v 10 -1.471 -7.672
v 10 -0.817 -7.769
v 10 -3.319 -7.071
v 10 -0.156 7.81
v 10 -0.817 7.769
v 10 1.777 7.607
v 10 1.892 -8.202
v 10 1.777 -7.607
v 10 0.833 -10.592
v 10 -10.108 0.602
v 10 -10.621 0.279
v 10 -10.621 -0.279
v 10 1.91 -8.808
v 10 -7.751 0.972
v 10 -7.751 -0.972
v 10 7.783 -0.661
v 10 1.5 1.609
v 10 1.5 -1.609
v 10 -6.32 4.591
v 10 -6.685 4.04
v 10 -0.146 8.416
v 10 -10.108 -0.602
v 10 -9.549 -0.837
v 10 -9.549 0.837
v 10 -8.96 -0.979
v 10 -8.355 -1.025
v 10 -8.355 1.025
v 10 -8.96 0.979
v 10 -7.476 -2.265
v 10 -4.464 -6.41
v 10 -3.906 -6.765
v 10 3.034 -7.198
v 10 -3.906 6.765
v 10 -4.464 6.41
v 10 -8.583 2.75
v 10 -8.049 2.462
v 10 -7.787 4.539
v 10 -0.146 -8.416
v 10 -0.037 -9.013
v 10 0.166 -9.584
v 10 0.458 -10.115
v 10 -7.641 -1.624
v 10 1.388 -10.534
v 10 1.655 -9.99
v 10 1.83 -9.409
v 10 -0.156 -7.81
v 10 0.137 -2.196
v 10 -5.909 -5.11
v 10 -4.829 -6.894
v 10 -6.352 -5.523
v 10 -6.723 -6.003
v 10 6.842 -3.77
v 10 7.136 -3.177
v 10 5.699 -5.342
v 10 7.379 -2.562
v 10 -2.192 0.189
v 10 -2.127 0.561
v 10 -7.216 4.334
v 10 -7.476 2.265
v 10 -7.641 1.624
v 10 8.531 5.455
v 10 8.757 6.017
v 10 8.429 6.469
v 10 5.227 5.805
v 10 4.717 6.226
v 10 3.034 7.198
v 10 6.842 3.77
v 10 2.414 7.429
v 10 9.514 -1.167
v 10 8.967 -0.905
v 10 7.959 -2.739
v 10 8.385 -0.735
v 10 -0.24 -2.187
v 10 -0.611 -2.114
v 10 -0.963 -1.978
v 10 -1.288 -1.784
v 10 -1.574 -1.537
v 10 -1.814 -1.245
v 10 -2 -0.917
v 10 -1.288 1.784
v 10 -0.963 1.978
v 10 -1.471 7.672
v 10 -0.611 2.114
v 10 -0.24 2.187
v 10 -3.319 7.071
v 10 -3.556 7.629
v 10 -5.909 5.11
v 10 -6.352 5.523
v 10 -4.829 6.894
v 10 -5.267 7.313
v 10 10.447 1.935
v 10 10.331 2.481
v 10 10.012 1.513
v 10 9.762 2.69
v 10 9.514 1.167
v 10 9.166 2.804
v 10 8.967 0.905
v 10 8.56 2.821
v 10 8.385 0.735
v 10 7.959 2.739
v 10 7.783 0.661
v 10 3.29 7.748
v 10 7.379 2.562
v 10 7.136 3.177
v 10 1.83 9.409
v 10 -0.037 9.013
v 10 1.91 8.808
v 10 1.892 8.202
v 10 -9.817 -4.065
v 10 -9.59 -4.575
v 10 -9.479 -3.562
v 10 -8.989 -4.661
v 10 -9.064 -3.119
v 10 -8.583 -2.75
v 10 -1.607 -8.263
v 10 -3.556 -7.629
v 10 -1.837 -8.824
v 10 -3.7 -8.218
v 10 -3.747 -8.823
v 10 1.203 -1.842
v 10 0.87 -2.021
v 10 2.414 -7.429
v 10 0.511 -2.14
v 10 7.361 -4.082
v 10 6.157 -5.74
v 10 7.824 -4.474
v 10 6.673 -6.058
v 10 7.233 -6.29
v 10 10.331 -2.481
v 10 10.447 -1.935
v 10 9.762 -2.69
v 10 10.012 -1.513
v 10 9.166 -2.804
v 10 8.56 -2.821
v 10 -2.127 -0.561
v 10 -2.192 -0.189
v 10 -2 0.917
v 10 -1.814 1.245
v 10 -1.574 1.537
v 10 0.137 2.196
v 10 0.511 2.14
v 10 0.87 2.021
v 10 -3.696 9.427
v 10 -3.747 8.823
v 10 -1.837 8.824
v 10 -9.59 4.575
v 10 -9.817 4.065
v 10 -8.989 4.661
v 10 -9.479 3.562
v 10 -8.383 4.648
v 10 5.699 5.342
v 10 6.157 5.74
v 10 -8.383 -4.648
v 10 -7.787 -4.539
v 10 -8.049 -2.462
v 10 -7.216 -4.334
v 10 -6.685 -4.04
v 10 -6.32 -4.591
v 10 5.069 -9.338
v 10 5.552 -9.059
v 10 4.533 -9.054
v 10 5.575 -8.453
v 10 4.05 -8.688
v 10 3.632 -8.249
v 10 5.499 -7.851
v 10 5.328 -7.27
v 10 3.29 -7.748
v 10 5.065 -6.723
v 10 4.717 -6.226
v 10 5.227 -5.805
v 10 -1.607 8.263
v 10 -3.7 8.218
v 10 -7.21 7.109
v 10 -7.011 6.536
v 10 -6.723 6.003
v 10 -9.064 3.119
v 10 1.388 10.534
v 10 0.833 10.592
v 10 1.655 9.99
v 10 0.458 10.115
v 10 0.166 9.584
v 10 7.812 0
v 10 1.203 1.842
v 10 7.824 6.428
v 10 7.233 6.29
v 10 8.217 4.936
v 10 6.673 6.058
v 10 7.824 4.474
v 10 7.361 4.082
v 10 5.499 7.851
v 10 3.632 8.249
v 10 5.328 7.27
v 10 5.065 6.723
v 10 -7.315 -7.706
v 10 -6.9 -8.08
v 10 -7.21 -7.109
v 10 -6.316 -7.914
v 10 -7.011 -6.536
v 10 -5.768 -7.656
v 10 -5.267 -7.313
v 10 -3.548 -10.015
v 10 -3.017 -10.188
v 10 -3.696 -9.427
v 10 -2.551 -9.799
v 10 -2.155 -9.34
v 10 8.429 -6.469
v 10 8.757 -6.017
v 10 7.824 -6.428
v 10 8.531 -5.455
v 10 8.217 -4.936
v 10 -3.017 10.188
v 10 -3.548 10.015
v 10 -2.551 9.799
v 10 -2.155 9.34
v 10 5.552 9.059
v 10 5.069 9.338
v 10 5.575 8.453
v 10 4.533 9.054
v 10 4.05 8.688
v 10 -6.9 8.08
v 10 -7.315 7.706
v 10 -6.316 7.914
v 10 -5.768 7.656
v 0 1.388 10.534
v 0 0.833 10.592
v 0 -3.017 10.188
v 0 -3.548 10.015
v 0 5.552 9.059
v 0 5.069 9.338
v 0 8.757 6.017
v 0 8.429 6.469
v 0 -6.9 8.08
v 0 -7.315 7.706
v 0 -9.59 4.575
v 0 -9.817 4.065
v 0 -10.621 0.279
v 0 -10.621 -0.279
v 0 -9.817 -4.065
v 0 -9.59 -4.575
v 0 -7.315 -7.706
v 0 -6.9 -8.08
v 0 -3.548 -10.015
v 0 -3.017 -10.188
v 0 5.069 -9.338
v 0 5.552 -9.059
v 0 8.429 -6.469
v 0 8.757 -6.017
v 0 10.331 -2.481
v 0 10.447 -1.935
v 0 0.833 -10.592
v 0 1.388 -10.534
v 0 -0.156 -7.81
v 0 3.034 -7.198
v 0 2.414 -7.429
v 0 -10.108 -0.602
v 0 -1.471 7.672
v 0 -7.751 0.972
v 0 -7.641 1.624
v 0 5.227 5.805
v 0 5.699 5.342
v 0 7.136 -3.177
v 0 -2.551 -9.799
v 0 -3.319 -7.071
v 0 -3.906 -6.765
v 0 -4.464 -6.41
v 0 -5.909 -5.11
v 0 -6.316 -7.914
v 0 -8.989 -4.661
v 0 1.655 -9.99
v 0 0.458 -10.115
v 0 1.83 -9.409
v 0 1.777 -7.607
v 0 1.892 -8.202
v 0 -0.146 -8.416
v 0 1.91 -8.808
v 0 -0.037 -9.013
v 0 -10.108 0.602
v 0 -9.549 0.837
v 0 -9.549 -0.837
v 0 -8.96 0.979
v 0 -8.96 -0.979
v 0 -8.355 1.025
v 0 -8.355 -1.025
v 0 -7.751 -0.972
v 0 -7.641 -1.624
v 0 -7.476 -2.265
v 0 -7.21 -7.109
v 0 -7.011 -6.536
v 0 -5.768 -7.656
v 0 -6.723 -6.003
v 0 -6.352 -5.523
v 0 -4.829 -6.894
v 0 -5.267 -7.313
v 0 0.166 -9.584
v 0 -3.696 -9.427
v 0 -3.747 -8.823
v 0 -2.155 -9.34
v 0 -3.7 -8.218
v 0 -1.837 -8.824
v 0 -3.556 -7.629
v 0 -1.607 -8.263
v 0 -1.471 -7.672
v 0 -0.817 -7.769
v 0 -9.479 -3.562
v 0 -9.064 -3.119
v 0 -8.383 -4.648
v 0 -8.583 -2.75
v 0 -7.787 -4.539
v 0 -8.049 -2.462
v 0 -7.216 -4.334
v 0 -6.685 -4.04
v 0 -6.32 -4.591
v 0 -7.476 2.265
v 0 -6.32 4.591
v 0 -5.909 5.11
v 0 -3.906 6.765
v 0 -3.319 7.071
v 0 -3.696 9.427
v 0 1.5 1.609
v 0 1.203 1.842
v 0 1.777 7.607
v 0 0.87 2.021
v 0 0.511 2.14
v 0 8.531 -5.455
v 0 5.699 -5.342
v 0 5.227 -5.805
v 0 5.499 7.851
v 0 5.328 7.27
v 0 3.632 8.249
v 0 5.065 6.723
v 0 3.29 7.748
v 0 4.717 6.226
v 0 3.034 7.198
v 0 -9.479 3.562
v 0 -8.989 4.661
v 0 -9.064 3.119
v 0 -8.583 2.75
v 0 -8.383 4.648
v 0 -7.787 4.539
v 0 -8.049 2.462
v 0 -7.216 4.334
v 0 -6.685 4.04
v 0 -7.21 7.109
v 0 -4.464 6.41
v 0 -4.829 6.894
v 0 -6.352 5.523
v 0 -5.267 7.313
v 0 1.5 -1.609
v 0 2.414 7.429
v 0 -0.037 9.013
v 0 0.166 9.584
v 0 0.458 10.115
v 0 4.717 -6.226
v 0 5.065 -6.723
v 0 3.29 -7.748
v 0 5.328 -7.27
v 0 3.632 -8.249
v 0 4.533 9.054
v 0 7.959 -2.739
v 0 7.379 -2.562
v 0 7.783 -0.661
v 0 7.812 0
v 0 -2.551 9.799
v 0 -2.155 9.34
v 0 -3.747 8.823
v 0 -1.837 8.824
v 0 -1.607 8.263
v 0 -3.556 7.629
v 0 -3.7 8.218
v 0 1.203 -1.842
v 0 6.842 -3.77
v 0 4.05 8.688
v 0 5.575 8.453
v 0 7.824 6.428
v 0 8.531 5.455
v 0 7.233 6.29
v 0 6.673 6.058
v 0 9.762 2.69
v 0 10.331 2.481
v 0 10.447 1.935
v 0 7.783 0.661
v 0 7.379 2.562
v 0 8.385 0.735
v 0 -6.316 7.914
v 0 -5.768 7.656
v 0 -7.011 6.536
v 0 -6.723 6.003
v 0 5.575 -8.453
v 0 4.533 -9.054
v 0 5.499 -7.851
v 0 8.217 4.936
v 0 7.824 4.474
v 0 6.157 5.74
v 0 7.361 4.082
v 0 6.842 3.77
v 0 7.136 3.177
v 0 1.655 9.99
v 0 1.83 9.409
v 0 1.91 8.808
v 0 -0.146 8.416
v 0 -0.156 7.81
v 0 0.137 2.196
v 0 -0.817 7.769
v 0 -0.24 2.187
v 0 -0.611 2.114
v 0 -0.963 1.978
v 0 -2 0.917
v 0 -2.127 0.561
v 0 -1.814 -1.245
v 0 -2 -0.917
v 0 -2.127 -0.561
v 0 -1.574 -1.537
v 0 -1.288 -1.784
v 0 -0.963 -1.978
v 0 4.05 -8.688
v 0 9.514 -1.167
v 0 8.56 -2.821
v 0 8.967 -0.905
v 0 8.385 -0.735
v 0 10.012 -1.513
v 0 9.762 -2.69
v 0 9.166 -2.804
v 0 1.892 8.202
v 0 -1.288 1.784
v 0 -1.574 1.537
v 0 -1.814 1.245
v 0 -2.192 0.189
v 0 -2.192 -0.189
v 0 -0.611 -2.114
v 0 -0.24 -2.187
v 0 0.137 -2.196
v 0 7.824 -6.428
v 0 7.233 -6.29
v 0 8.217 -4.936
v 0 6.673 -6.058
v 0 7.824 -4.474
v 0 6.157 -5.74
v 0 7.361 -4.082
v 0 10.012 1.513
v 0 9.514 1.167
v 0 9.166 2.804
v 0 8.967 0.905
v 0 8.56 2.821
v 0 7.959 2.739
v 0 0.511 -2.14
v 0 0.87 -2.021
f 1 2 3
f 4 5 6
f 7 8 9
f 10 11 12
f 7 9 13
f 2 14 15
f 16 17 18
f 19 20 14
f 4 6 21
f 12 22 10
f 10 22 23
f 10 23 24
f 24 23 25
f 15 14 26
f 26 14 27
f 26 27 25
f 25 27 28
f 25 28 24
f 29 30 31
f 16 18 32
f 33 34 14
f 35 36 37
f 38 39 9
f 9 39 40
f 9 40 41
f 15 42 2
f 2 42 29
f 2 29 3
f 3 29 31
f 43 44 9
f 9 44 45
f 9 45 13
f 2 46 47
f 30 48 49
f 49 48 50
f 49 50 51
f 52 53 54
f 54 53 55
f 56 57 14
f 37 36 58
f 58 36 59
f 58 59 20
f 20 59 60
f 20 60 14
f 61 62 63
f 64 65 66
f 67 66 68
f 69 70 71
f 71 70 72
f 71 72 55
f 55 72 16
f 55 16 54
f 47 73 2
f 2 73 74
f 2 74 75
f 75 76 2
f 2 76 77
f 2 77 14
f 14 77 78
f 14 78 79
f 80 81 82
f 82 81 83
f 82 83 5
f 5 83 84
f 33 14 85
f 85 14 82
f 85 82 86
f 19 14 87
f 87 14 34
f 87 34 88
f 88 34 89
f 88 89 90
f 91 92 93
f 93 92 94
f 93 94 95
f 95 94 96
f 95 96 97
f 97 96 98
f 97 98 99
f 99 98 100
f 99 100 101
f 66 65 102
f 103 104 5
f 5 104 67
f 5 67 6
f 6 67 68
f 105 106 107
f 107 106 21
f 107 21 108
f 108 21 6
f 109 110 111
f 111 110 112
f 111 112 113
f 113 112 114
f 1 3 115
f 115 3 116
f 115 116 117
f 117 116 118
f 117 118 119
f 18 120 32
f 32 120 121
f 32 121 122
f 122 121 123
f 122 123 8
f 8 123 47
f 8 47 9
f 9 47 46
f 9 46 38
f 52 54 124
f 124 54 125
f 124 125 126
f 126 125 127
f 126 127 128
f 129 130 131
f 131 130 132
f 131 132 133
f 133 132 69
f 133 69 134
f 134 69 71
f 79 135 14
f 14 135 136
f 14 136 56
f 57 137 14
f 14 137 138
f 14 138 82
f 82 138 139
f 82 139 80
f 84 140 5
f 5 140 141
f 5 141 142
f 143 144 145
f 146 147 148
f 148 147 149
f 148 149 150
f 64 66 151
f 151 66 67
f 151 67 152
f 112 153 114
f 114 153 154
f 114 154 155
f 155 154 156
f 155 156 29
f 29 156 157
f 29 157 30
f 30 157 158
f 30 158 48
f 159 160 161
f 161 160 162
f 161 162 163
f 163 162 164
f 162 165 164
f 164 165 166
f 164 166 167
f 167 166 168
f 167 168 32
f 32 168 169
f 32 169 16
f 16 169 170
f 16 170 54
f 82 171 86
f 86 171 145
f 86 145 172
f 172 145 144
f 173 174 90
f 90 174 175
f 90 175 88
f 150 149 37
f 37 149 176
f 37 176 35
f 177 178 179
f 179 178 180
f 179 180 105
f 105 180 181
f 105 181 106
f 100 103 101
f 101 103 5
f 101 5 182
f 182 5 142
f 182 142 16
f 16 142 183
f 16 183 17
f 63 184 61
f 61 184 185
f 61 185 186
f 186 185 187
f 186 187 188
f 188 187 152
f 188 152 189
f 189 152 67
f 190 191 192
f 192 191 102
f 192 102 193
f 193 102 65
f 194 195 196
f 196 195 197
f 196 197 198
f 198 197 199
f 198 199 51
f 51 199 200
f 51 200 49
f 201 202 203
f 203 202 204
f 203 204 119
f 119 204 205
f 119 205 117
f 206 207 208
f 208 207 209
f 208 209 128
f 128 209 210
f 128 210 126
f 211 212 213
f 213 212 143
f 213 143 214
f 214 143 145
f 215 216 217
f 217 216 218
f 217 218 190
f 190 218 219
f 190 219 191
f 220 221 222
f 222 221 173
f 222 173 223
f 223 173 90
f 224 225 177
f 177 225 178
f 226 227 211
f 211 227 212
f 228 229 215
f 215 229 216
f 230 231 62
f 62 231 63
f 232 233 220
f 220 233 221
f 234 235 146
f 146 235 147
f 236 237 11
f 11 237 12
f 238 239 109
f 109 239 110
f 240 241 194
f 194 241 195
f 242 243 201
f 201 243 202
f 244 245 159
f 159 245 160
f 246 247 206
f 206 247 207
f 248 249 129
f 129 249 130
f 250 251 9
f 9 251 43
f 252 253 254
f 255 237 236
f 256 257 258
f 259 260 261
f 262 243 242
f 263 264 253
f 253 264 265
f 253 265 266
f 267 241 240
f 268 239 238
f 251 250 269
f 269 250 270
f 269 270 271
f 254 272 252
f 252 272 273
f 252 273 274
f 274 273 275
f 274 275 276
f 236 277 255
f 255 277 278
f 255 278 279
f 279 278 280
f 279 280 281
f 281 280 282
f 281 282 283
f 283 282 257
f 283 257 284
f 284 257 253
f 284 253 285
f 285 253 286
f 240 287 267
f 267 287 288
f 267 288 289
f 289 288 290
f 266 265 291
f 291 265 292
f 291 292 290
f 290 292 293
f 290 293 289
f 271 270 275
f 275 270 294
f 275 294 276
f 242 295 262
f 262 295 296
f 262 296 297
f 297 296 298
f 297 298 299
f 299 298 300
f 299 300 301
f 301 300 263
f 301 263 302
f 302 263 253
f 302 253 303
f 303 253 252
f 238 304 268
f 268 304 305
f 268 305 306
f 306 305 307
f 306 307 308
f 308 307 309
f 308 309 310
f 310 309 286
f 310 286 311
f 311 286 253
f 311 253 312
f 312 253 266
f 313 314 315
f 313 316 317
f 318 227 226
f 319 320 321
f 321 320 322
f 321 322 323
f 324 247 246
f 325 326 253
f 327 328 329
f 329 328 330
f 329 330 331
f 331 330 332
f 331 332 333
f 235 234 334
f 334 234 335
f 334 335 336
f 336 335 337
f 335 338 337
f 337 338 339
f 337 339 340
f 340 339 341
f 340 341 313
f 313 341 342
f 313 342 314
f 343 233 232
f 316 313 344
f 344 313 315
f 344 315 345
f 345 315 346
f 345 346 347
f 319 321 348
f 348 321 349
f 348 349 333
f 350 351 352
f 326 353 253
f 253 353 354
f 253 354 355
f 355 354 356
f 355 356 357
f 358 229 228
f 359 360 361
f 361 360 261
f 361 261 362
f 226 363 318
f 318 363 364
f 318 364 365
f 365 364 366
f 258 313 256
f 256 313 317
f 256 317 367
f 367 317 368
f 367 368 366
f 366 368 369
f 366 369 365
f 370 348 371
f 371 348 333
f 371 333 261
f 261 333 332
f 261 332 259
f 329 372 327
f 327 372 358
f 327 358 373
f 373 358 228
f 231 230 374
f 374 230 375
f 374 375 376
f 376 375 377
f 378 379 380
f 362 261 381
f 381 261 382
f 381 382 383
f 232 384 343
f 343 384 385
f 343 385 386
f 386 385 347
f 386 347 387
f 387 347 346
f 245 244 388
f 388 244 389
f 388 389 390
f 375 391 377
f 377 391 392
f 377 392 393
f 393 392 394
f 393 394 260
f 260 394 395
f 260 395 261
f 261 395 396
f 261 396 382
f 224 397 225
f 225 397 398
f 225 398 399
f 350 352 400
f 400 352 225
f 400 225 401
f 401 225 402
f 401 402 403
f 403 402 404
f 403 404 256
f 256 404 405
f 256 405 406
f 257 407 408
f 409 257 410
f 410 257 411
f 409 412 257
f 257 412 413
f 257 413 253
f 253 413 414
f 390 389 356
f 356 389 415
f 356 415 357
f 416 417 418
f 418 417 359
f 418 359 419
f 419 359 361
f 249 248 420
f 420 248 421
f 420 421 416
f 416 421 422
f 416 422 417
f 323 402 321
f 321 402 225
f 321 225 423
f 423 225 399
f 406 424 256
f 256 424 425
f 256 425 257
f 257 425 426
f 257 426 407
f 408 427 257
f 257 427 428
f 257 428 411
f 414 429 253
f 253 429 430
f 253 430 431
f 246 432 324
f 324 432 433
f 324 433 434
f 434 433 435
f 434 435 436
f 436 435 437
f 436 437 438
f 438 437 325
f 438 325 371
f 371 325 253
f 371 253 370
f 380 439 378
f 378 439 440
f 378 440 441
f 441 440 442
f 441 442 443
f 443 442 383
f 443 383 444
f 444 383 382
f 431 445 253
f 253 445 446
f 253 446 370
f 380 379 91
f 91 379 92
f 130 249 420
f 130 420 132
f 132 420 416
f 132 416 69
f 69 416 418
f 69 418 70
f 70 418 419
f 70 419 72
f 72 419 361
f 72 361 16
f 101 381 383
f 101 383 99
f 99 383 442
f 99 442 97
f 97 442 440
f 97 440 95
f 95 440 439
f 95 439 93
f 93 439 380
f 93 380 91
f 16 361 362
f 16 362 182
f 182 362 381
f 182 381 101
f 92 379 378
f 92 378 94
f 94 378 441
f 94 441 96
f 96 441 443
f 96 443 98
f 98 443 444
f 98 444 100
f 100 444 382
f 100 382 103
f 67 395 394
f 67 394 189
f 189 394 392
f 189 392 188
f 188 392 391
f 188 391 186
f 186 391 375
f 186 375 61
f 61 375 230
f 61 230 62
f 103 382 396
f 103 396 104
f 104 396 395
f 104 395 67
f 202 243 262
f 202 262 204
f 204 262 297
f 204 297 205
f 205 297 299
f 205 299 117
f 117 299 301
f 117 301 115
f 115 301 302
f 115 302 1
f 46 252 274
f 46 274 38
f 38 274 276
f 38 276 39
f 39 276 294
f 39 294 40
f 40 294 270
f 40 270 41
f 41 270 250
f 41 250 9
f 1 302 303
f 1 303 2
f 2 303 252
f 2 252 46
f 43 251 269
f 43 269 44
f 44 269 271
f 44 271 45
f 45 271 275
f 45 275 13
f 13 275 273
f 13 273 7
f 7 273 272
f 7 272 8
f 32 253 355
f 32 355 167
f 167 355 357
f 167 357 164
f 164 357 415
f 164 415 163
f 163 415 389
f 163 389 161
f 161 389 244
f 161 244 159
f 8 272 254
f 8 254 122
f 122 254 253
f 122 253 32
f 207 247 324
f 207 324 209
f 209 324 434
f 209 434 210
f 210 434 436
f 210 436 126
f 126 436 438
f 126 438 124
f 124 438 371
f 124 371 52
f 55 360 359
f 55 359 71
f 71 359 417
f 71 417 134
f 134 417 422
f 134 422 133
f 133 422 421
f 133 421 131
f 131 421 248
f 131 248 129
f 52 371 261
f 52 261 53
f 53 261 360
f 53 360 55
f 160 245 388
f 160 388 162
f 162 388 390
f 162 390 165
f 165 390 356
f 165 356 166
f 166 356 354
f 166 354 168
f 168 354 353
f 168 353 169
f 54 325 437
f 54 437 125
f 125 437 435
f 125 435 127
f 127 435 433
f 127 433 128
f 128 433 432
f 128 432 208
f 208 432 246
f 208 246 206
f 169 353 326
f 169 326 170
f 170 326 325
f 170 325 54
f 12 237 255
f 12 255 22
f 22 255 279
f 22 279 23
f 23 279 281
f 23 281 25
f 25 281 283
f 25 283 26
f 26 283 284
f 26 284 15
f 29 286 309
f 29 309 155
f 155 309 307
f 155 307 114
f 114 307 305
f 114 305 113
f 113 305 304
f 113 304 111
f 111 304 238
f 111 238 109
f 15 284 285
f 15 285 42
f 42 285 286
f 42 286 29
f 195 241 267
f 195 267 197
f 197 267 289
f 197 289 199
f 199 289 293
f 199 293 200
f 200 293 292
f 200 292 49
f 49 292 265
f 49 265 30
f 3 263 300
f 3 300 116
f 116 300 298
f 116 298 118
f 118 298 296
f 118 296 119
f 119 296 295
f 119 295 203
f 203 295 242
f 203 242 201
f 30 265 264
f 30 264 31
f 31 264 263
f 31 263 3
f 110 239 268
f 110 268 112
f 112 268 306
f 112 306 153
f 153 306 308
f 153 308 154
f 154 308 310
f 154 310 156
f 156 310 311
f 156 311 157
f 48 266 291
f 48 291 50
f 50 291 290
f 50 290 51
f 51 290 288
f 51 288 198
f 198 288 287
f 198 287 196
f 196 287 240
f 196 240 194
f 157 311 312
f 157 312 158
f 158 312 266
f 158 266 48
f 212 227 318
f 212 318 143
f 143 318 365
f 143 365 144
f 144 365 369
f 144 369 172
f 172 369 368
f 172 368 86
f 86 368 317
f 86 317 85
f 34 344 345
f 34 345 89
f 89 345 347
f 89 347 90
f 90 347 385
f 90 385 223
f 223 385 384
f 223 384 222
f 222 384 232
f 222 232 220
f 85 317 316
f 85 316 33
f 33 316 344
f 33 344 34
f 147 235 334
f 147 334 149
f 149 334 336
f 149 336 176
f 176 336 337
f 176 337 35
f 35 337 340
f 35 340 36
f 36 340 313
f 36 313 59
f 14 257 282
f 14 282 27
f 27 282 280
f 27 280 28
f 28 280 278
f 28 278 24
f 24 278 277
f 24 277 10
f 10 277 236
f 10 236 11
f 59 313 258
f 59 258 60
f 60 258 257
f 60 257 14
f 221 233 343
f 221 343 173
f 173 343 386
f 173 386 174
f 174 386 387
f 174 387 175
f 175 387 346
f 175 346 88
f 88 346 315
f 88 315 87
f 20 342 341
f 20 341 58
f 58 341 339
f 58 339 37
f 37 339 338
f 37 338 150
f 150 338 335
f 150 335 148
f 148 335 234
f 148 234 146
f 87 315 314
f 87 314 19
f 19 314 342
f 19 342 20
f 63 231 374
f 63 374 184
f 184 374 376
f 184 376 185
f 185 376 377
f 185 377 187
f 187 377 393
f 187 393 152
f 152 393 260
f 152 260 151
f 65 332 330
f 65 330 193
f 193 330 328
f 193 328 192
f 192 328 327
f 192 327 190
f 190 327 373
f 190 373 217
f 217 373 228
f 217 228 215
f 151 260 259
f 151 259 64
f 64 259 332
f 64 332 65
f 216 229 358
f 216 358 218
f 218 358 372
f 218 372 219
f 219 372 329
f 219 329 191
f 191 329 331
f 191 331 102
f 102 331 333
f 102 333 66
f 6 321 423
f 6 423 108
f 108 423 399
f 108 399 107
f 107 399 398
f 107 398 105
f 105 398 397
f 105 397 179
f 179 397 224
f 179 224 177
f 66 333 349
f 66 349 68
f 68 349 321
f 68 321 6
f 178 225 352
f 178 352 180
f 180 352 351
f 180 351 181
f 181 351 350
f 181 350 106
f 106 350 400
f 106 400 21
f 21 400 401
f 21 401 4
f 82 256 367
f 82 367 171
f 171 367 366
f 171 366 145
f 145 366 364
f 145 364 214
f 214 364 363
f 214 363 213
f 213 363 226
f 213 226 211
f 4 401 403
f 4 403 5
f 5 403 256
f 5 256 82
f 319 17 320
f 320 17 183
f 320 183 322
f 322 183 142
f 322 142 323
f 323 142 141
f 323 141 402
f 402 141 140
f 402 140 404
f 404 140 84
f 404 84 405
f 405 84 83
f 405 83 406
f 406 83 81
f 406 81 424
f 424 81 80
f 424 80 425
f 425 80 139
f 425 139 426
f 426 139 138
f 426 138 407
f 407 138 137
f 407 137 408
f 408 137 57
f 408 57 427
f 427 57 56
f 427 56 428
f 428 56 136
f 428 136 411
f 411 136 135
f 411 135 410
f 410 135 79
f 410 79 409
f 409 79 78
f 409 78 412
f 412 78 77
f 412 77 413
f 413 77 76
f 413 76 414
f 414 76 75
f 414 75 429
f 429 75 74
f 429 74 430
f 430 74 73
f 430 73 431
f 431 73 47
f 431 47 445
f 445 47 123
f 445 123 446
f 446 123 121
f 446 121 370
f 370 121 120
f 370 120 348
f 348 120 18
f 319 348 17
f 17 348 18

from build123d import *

# Parameters (mm, degrees)
BASPROSKE_W         = 10
BASPROSKE_H         = 10.625
TOOTHCUT_DEPTH      = 19.049411348
TEETHCUTS_COUNT     = 15
TEETHCUTS_ANGLE     = 336
BORSKE_R            = 2
BORE_DEPTH          = 50.0000508
SKETCH1_R           = 2.2
CUT_EXTRUDE2_DEPTH  = 10
BOSS_EXTRUDE1_DEPTH = 10


with BuildPart() as part:
    # BasProSke → Base-Revolve (revolve)
    with BuildSketch(Plane(origin=(0, 0, 0), x_dir=(1, 0, 0), z_dir=(0, 1, 0)), mode=Mode.PRIVATE) as base_revolve_sk:
        with Locations((5, 5.3125)):
            Rectangle(BASPROSKE_W, BASPROSKE_H)
    revolve(base_revolve_sk.sketch.rotate(Axis((-10, 0, 0), (1, 0, 0)), 180), axis=Axis((-10, 0, 0), (1, 0, 0)))

    # TooCutSke → ToothCut (cut, through all)
    with BuildSketch(Plane(origin=(0, 0, 0), x_dir=(0, 0, -1), z_dir=(1, 0, 0))):
        with BuildLine():
            ThreePointArc((0.660831632, 7.78349753), (0, 7.8115), (-0.660831632, 7.78349753))
            ThreePointArc((-0.660831632, 7.78349753), (-1.031814994, 9.260718016), (-1.959681305, 10.46855622))
            ThreePointArc((-1.959681305, 10.46855622), (0, 10.6504), (1.959681305, 10.46855622))
            ThreePointArc((1.959681305, 10.46855622), (1.031814994, 9.260718016), (0.660831632, 7.78349753))
        make_face()
    toothcut = extrude(amount=TOOTHCUT_DEPTH, mode=Mode.SUBTRACT)

    # TeethCuts: ToothCut ×15 about axis
    teethcuts_axis = Axis((-10, 0, 0), (1, 0, 0))
    for i in range(1, TEETHCUTS_COUNT):
        add(toothcut.rotate(teethcuts_axis, i * TEETHCUTS_ANGLE / (TEETHCUTS_COUNT - 1)), mode=Mode.SUBTRACT)

    # BorSke → Bore (cut, symmetric)
    with BuildSketch(Plane(origin=(0, 0, 0), x_dir=(0, 0, -1), z_dir=(1, 0, 0))):
        with Locations(Location((0, 0, 0), (0, 0, 180))):
            Circle(BORSKE_R)
    extrude(amount=BORE_DEPTH, both=True, mode=Mode.SUBTRACT)

    # Sketch1 → Cut-Extrude2 (cut)
    with BuildSketch(Plane(origin=(10, 0, 0), x_dir=(0, 0, -1), z_dir=(1, 0, 0))):
        Circle(SKETCH1_R)
    extrude(amount=-CUT_EXTRUDE2_DEPTH, mode=Mode.SUBTRACT)

    # Sketch4 → Boss-Extrude1 (add)
    with BuildSketch(Plane(origin=(10, 0, 0), x_dir=(0, 0, -1), z_dir=(1, 0, 0))):
        with BuildLine():
            ThreePointArc((1.609347694, 1.5), (0, 2.2), (-1.609347694, 1.5))
            Line((-1.609347694, 1.5), (1.609347694, 1.5))
        make_face()
    extrude(amount=-BOSS_EXTRUDE1_DEPTH)


solid = part.part
